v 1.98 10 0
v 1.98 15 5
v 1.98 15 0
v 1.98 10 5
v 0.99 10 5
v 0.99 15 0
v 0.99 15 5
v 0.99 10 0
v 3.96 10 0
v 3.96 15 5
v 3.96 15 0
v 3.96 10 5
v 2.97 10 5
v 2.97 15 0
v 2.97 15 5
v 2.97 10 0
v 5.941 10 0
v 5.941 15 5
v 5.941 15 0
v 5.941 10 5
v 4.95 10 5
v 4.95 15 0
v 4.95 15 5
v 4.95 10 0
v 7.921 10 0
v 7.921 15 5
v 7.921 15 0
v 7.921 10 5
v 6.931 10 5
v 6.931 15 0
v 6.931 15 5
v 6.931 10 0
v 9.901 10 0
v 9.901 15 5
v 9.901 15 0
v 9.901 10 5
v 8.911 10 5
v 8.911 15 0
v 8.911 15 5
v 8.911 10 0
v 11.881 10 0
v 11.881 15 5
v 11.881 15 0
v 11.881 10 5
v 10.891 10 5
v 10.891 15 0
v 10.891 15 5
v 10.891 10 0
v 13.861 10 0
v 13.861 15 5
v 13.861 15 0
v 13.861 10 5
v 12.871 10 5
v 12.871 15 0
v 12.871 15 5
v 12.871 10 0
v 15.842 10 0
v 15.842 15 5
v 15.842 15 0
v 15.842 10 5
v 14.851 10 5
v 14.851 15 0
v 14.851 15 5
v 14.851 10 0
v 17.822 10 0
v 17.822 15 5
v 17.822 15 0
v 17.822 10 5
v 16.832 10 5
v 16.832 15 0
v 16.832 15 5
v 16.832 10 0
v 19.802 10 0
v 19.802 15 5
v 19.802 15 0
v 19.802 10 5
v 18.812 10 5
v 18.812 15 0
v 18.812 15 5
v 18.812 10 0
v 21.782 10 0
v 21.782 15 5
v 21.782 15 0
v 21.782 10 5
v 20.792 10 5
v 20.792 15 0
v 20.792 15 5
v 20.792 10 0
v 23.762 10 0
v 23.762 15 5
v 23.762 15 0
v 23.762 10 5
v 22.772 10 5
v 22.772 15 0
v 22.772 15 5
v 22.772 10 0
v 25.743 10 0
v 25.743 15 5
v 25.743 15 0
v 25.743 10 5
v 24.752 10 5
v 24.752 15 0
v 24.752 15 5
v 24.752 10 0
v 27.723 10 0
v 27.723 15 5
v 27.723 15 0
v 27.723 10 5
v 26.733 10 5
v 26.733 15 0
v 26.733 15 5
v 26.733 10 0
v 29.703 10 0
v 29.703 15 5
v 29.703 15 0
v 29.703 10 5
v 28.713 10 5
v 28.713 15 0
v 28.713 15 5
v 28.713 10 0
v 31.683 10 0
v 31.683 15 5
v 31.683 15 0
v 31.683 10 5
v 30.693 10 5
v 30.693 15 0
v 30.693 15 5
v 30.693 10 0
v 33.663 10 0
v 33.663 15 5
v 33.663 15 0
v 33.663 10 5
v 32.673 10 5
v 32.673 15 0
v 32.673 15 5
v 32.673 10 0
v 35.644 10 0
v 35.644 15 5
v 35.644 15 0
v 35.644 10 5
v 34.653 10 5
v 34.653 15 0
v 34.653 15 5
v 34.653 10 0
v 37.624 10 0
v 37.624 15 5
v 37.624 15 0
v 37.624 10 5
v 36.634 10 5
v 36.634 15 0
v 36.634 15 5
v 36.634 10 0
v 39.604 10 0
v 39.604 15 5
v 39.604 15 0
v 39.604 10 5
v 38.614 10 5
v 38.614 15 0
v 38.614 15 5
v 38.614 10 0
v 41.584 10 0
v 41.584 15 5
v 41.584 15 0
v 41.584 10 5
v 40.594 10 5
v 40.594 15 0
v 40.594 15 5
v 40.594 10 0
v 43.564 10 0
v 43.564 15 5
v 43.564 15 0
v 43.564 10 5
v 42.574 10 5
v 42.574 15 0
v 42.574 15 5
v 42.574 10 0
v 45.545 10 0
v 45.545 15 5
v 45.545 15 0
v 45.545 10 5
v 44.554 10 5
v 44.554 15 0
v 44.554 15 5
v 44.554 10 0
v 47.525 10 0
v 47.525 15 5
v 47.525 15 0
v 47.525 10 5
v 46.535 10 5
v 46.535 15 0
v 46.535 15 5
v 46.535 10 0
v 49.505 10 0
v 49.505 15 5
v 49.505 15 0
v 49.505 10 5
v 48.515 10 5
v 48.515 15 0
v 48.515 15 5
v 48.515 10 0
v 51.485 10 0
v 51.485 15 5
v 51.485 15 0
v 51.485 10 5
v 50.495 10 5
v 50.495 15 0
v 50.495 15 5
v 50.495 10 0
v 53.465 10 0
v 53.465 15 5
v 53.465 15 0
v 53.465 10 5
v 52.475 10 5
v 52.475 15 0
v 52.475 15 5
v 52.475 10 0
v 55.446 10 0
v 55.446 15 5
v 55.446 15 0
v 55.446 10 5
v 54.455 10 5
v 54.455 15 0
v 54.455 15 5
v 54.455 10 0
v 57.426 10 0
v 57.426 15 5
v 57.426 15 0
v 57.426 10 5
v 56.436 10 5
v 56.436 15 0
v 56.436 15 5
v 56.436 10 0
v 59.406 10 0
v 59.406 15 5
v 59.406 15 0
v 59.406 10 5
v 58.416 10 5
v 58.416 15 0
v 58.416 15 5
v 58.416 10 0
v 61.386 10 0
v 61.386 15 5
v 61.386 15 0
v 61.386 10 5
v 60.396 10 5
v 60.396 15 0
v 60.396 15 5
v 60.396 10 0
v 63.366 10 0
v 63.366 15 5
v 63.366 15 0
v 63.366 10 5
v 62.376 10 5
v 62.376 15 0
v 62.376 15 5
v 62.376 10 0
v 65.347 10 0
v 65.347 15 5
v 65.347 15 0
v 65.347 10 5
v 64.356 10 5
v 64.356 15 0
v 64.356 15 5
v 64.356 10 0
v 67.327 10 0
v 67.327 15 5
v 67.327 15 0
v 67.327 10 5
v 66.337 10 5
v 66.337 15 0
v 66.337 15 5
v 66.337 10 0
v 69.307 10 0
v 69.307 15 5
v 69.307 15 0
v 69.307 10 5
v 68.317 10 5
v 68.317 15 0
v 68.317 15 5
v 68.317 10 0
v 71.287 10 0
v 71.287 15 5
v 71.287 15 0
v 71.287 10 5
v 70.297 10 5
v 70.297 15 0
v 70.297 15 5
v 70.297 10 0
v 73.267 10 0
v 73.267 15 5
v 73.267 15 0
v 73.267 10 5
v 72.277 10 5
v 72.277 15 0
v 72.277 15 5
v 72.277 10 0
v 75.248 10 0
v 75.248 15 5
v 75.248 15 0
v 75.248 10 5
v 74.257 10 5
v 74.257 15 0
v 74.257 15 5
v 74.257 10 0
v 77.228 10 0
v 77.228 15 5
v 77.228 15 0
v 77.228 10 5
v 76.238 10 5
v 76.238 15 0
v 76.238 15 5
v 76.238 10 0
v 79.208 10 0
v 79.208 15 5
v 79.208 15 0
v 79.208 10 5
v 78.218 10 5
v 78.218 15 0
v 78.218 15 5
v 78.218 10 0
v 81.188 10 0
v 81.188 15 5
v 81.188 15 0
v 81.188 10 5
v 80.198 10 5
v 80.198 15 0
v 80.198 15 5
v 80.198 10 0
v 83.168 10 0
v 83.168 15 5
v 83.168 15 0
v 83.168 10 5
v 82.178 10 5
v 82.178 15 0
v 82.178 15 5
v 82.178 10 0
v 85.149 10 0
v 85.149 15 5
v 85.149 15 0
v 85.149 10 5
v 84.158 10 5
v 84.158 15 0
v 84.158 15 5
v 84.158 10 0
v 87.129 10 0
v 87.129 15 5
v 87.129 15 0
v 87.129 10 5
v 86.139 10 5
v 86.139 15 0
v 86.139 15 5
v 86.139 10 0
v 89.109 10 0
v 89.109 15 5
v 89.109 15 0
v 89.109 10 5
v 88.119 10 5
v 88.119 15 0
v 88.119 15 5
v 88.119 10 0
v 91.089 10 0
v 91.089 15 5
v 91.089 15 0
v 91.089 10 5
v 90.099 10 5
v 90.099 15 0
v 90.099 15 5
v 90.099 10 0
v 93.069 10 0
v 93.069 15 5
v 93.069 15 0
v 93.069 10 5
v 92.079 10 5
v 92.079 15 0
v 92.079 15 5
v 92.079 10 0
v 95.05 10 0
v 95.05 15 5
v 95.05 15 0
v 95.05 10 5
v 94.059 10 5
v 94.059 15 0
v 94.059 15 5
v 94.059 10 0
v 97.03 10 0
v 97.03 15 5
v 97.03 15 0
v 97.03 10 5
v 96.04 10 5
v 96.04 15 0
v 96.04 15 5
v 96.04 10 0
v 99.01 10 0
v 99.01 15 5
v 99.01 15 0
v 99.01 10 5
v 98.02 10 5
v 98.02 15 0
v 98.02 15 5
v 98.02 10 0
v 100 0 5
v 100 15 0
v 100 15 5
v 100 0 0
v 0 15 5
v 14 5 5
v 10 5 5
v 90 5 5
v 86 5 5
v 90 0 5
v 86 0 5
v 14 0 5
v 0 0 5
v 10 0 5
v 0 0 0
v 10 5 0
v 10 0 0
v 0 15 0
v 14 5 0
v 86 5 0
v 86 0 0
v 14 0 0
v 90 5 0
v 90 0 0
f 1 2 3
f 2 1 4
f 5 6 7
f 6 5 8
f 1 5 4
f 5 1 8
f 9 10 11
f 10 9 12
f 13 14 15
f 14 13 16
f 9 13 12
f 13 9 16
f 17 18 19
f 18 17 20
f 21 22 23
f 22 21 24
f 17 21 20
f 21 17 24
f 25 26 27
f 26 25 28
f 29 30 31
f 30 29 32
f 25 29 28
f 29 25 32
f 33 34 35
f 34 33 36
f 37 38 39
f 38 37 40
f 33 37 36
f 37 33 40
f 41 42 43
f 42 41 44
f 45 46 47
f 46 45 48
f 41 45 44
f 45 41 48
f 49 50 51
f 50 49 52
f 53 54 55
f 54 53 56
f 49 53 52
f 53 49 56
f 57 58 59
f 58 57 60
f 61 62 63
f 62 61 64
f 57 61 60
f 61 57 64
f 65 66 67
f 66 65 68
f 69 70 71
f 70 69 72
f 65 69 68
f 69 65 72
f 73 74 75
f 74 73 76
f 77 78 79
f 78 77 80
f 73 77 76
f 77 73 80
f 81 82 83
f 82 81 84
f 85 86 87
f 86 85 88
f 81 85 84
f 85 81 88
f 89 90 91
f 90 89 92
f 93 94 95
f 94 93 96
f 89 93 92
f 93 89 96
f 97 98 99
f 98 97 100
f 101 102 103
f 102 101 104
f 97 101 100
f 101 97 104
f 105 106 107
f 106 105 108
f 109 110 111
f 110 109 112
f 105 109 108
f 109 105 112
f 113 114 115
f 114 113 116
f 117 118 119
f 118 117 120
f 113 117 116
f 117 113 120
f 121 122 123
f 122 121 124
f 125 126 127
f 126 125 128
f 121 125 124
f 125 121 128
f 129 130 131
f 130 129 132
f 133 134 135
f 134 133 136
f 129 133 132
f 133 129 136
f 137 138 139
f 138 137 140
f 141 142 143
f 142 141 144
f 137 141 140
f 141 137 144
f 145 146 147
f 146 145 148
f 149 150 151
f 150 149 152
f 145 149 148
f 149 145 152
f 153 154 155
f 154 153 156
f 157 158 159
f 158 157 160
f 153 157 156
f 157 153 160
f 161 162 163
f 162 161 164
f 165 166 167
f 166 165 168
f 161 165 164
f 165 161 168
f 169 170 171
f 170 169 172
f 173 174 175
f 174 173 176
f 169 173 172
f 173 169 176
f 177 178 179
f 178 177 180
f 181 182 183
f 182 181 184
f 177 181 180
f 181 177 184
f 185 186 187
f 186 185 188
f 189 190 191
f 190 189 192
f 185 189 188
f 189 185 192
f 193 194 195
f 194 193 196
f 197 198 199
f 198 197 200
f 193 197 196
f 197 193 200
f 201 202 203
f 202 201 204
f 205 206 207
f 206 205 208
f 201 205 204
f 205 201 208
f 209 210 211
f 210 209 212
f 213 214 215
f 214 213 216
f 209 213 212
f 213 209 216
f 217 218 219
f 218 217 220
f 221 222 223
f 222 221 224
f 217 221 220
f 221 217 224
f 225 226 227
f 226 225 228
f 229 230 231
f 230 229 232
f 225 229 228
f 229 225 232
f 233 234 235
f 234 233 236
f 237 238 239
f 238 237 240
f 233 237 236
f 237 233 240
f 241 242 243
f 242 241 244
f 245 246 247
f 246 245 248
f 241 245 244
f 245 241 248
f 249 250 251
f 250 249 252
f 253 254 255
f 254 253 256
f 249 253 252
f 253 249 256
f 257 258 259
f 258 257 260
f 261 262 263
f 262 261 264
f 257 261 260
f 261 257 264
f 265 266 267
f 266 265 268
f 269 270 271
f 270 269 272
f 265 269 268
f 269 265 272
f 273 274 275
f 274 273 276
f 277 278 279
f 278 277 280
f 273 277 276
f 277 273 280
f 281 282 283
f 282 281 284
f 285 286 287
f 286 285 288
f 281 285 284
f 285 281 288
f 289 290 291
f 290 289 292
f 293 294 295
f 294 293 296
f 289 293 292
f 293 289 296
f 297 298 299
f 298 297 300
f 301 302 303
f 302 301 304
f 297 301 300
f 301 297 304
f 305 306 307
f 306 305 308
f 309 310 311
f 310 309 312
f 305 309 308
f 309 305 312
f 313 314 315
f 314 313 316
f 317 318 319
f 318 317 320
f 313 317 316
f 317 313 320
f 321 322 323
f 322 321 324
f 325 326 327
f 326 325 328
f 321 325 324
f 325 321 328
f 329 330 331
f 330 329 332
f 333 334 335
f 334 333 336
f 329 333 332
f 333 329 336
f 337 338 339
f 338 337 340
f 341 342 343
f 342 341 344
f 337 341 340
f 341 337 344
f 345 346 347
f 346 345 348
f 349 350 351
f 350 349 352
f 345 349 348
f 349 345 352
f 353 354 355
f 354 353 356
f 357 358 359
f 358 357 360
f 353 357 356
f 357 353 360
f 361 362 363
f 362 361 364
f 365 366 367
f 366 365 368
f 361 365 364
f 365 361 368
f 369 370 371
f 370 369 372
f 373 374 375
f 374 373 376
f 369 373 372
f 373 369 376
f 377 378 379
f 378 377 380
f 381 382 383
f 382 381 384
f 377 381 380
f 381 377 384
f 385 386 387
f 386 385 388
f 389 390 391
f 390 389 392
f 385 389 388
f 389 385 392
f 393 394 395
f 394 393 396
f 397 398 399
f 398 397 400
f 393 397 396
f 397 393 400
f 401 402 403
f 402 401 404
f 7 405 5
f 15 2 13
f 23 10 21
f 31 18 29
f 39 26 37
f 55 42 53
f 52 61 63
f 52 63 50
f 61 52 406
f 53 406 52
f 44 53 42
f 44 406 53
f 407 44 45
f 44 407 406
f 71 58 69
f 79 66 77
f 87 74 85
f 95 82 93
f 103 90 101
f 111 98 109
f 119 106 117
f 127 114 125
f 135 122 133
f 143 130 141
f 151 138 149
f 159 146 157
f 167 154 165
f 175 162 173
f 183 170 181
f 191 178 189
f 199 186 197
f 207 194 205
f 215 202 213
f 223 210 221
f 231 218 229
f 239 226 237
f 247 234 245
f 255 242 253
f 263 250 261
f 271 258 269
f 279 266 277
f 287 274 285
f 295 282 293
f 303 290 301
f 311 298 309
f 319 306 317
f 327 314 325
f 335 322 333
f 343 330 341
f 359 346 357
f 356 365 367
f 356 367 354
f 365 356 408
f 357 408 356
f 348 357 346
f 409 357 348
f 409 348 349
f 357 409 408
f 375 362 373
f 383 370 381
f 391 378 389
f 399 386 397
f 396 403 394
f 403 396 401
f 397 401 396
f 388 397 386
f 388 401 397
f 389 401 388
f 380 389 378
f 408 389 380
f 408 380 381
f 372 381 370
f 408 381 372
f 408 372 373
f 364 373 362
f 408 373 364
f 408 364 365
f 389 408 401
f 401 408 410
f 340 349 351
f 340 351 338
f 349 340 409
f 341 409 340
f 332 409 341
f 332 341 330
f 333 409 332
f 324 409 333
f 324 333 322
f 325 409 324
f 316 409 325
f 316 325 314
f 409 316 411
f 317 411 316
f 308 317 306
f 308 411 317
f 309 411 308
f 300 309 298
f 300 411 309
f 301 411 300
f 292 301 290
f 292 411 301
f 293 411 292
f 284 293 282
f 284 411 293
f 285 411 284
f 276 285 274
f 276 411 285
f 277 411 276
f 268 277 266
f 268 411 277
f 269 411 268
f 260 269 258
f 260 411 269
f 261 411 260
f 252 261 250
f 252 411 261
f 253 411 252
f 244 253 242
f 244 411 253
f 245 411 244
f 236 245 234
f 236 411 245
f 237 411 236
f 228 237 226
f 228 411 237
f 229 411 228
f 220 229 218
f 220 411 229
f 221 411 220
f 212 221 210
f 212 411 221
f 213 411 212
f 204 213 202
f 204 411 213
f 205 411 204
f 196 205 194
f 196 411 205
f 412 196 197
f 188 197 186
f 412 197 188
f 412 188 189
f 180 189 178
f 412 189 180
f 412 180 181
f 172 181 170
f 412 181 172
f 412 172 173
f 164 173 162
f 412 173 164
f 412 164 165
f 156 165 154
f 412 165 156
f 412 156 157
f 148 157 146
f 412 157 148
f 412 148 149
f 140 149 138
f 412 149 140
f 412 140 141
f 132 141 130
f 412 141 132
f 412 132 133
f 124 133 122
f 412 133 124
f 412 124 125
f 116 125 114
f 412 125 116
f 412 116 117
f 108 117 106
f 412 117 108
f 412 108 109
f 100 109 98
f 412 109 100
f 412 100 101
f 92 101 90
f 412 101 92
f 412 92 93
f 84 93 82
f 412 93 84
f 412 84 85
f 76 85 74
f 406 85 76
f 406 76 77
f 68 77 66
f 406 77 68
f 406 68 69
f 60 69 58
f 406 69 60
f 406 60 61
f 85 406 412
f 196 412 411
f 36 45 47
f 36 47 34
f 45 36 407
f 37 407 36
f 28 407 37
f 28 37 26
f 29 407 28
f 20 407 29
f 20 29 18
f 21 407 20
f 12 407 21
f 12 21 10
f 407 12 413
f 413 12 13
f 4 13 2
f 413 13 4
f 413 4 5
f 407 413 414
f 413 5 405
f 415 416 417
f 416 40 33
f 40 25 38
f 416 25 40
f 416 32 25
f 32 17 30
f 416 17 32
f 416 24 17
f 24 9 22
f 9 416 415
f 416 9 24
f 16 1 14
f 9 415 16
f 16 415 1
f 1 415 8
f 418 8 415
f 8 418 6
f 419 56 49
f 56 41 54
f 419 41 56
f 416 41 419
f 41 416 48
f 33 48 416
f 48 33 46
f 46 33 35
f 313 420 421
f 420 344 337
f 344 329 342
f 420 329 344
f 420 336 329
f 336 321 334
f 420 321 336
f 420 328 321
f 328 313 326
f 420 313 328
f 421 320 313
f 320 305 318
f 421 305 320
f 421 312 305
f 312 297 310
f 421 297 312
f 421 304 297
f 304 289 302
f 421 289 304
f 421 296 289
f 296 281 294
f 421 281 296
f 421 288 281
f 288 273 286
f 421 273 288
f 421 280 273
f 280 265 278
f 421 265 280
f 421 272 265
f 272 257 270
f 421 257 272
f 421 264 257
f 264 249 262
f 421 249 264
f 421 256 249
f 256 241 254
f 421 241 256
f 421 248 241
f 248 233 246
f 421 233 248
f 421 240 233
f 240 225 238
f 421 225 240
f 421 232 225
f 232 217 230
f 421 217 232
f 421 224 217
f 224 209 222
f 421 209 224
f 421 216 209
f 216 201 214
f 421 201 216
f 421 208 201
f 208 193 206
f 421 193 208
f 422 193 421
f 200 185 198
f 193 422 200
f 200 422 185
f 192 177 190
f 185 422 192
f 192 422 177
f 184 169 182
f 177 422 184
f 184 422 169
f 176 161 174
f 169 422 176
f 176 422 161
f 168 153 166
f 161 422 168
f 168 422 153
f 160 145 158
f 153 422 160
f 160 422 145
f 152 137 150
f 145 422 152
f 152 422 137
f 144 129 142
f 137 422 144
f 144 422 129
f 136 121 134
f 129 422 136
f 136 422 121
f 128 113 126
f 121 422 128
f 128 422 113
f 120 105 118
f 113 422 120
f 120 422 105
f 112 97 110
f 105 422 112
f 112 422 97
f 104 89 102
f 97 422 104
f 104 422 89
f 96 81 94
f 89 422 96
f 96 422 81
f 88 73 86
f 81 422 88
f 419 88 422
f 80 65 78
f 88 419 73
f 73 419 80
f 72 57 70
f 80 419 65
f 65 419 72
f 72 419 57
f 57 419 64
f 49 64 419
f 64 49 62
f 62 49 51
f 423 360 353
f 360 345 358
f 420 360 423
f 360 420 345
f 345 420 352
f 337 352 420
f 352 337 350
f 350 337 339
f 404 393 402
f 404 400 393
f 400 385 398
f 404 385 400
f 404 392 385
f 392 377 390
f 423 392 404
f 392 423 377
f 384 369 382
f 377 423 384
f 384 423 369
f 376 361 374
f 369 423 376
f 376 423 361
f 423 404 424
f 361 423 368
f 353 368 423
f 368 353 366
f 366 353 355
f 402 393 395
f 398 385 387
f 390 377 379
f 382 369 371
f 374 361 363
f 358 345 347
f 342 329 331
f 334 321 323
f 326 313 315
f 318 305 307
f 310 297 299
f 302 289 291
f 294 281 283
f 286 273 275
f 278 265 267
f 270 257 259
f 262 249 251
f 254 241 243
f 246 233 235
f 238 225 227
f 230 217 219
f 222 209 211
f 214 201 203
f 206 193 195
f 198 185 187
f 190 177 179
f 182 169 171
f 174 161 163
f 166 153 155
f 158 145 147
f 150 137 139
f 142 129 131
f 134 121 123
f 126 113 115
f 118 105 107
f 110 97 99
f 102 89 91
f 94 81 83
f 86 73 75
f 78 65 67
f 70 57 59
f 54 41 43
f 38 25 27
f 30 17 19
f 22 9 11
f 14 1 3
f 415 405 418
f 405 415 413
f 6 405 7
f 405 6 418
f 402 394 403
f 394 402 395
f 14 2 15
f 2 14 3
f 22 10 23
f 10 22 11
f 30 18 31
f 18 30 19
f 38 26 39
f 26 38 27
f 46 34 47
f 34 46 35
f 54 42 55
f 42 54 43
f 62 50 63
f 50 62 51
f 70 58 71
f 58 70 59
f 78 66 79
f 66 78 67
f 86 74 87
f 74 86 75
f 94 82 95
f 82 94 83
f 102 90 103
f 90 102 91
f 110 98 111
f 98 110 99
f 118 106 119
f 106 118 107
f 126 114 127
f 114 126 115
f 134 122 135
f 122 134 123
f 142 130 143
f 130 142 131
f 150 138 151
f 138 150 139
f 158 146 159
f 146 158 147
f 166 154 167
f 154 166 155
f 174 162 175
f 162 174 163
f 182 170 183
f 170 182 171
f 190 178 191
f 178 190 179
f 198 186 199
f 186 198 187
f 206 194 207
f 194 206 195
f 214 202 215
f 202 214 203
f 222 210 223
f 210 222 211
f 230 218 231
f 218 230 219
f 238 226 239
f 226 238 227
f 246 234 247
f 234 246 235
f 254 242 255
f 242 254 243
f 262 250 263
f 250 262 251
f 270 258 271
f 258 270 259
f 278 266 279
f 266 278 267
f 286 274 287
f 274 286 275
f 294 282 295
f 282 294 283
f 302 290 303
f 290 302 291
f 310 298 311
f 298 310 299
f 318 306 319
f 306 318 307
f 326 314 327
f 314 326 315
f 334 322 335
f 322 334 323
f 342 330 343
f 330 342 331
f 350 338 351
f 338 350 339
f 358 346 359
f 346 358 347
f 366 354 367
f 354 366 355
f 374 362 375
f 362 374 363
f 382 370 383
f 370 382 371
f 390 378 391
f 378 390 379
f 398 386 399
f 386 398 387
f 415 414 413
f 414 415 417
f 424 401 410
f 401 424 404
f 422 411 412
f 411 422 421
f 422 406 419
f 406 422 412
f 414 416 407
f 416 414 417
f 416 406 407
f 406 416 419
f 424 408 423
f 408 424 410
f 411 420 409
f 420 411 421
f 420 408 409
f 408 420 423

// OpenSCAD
width = 100;
count = 50;
separation = width / (2*count + 1);


difference() {
    cube([width,15,5]);

    translate([0,10,0])
    #union() {
        for(i = [0:count-1]) {
            translate([(2*i+1)*separation,0,-1])
            cube([separation, 100, 10]);
        }
    }

    translate([10,-5,0])
    #cube([4,10,10]);

    translate([86,-5,0])
    #cube([4,10,10]);
}
